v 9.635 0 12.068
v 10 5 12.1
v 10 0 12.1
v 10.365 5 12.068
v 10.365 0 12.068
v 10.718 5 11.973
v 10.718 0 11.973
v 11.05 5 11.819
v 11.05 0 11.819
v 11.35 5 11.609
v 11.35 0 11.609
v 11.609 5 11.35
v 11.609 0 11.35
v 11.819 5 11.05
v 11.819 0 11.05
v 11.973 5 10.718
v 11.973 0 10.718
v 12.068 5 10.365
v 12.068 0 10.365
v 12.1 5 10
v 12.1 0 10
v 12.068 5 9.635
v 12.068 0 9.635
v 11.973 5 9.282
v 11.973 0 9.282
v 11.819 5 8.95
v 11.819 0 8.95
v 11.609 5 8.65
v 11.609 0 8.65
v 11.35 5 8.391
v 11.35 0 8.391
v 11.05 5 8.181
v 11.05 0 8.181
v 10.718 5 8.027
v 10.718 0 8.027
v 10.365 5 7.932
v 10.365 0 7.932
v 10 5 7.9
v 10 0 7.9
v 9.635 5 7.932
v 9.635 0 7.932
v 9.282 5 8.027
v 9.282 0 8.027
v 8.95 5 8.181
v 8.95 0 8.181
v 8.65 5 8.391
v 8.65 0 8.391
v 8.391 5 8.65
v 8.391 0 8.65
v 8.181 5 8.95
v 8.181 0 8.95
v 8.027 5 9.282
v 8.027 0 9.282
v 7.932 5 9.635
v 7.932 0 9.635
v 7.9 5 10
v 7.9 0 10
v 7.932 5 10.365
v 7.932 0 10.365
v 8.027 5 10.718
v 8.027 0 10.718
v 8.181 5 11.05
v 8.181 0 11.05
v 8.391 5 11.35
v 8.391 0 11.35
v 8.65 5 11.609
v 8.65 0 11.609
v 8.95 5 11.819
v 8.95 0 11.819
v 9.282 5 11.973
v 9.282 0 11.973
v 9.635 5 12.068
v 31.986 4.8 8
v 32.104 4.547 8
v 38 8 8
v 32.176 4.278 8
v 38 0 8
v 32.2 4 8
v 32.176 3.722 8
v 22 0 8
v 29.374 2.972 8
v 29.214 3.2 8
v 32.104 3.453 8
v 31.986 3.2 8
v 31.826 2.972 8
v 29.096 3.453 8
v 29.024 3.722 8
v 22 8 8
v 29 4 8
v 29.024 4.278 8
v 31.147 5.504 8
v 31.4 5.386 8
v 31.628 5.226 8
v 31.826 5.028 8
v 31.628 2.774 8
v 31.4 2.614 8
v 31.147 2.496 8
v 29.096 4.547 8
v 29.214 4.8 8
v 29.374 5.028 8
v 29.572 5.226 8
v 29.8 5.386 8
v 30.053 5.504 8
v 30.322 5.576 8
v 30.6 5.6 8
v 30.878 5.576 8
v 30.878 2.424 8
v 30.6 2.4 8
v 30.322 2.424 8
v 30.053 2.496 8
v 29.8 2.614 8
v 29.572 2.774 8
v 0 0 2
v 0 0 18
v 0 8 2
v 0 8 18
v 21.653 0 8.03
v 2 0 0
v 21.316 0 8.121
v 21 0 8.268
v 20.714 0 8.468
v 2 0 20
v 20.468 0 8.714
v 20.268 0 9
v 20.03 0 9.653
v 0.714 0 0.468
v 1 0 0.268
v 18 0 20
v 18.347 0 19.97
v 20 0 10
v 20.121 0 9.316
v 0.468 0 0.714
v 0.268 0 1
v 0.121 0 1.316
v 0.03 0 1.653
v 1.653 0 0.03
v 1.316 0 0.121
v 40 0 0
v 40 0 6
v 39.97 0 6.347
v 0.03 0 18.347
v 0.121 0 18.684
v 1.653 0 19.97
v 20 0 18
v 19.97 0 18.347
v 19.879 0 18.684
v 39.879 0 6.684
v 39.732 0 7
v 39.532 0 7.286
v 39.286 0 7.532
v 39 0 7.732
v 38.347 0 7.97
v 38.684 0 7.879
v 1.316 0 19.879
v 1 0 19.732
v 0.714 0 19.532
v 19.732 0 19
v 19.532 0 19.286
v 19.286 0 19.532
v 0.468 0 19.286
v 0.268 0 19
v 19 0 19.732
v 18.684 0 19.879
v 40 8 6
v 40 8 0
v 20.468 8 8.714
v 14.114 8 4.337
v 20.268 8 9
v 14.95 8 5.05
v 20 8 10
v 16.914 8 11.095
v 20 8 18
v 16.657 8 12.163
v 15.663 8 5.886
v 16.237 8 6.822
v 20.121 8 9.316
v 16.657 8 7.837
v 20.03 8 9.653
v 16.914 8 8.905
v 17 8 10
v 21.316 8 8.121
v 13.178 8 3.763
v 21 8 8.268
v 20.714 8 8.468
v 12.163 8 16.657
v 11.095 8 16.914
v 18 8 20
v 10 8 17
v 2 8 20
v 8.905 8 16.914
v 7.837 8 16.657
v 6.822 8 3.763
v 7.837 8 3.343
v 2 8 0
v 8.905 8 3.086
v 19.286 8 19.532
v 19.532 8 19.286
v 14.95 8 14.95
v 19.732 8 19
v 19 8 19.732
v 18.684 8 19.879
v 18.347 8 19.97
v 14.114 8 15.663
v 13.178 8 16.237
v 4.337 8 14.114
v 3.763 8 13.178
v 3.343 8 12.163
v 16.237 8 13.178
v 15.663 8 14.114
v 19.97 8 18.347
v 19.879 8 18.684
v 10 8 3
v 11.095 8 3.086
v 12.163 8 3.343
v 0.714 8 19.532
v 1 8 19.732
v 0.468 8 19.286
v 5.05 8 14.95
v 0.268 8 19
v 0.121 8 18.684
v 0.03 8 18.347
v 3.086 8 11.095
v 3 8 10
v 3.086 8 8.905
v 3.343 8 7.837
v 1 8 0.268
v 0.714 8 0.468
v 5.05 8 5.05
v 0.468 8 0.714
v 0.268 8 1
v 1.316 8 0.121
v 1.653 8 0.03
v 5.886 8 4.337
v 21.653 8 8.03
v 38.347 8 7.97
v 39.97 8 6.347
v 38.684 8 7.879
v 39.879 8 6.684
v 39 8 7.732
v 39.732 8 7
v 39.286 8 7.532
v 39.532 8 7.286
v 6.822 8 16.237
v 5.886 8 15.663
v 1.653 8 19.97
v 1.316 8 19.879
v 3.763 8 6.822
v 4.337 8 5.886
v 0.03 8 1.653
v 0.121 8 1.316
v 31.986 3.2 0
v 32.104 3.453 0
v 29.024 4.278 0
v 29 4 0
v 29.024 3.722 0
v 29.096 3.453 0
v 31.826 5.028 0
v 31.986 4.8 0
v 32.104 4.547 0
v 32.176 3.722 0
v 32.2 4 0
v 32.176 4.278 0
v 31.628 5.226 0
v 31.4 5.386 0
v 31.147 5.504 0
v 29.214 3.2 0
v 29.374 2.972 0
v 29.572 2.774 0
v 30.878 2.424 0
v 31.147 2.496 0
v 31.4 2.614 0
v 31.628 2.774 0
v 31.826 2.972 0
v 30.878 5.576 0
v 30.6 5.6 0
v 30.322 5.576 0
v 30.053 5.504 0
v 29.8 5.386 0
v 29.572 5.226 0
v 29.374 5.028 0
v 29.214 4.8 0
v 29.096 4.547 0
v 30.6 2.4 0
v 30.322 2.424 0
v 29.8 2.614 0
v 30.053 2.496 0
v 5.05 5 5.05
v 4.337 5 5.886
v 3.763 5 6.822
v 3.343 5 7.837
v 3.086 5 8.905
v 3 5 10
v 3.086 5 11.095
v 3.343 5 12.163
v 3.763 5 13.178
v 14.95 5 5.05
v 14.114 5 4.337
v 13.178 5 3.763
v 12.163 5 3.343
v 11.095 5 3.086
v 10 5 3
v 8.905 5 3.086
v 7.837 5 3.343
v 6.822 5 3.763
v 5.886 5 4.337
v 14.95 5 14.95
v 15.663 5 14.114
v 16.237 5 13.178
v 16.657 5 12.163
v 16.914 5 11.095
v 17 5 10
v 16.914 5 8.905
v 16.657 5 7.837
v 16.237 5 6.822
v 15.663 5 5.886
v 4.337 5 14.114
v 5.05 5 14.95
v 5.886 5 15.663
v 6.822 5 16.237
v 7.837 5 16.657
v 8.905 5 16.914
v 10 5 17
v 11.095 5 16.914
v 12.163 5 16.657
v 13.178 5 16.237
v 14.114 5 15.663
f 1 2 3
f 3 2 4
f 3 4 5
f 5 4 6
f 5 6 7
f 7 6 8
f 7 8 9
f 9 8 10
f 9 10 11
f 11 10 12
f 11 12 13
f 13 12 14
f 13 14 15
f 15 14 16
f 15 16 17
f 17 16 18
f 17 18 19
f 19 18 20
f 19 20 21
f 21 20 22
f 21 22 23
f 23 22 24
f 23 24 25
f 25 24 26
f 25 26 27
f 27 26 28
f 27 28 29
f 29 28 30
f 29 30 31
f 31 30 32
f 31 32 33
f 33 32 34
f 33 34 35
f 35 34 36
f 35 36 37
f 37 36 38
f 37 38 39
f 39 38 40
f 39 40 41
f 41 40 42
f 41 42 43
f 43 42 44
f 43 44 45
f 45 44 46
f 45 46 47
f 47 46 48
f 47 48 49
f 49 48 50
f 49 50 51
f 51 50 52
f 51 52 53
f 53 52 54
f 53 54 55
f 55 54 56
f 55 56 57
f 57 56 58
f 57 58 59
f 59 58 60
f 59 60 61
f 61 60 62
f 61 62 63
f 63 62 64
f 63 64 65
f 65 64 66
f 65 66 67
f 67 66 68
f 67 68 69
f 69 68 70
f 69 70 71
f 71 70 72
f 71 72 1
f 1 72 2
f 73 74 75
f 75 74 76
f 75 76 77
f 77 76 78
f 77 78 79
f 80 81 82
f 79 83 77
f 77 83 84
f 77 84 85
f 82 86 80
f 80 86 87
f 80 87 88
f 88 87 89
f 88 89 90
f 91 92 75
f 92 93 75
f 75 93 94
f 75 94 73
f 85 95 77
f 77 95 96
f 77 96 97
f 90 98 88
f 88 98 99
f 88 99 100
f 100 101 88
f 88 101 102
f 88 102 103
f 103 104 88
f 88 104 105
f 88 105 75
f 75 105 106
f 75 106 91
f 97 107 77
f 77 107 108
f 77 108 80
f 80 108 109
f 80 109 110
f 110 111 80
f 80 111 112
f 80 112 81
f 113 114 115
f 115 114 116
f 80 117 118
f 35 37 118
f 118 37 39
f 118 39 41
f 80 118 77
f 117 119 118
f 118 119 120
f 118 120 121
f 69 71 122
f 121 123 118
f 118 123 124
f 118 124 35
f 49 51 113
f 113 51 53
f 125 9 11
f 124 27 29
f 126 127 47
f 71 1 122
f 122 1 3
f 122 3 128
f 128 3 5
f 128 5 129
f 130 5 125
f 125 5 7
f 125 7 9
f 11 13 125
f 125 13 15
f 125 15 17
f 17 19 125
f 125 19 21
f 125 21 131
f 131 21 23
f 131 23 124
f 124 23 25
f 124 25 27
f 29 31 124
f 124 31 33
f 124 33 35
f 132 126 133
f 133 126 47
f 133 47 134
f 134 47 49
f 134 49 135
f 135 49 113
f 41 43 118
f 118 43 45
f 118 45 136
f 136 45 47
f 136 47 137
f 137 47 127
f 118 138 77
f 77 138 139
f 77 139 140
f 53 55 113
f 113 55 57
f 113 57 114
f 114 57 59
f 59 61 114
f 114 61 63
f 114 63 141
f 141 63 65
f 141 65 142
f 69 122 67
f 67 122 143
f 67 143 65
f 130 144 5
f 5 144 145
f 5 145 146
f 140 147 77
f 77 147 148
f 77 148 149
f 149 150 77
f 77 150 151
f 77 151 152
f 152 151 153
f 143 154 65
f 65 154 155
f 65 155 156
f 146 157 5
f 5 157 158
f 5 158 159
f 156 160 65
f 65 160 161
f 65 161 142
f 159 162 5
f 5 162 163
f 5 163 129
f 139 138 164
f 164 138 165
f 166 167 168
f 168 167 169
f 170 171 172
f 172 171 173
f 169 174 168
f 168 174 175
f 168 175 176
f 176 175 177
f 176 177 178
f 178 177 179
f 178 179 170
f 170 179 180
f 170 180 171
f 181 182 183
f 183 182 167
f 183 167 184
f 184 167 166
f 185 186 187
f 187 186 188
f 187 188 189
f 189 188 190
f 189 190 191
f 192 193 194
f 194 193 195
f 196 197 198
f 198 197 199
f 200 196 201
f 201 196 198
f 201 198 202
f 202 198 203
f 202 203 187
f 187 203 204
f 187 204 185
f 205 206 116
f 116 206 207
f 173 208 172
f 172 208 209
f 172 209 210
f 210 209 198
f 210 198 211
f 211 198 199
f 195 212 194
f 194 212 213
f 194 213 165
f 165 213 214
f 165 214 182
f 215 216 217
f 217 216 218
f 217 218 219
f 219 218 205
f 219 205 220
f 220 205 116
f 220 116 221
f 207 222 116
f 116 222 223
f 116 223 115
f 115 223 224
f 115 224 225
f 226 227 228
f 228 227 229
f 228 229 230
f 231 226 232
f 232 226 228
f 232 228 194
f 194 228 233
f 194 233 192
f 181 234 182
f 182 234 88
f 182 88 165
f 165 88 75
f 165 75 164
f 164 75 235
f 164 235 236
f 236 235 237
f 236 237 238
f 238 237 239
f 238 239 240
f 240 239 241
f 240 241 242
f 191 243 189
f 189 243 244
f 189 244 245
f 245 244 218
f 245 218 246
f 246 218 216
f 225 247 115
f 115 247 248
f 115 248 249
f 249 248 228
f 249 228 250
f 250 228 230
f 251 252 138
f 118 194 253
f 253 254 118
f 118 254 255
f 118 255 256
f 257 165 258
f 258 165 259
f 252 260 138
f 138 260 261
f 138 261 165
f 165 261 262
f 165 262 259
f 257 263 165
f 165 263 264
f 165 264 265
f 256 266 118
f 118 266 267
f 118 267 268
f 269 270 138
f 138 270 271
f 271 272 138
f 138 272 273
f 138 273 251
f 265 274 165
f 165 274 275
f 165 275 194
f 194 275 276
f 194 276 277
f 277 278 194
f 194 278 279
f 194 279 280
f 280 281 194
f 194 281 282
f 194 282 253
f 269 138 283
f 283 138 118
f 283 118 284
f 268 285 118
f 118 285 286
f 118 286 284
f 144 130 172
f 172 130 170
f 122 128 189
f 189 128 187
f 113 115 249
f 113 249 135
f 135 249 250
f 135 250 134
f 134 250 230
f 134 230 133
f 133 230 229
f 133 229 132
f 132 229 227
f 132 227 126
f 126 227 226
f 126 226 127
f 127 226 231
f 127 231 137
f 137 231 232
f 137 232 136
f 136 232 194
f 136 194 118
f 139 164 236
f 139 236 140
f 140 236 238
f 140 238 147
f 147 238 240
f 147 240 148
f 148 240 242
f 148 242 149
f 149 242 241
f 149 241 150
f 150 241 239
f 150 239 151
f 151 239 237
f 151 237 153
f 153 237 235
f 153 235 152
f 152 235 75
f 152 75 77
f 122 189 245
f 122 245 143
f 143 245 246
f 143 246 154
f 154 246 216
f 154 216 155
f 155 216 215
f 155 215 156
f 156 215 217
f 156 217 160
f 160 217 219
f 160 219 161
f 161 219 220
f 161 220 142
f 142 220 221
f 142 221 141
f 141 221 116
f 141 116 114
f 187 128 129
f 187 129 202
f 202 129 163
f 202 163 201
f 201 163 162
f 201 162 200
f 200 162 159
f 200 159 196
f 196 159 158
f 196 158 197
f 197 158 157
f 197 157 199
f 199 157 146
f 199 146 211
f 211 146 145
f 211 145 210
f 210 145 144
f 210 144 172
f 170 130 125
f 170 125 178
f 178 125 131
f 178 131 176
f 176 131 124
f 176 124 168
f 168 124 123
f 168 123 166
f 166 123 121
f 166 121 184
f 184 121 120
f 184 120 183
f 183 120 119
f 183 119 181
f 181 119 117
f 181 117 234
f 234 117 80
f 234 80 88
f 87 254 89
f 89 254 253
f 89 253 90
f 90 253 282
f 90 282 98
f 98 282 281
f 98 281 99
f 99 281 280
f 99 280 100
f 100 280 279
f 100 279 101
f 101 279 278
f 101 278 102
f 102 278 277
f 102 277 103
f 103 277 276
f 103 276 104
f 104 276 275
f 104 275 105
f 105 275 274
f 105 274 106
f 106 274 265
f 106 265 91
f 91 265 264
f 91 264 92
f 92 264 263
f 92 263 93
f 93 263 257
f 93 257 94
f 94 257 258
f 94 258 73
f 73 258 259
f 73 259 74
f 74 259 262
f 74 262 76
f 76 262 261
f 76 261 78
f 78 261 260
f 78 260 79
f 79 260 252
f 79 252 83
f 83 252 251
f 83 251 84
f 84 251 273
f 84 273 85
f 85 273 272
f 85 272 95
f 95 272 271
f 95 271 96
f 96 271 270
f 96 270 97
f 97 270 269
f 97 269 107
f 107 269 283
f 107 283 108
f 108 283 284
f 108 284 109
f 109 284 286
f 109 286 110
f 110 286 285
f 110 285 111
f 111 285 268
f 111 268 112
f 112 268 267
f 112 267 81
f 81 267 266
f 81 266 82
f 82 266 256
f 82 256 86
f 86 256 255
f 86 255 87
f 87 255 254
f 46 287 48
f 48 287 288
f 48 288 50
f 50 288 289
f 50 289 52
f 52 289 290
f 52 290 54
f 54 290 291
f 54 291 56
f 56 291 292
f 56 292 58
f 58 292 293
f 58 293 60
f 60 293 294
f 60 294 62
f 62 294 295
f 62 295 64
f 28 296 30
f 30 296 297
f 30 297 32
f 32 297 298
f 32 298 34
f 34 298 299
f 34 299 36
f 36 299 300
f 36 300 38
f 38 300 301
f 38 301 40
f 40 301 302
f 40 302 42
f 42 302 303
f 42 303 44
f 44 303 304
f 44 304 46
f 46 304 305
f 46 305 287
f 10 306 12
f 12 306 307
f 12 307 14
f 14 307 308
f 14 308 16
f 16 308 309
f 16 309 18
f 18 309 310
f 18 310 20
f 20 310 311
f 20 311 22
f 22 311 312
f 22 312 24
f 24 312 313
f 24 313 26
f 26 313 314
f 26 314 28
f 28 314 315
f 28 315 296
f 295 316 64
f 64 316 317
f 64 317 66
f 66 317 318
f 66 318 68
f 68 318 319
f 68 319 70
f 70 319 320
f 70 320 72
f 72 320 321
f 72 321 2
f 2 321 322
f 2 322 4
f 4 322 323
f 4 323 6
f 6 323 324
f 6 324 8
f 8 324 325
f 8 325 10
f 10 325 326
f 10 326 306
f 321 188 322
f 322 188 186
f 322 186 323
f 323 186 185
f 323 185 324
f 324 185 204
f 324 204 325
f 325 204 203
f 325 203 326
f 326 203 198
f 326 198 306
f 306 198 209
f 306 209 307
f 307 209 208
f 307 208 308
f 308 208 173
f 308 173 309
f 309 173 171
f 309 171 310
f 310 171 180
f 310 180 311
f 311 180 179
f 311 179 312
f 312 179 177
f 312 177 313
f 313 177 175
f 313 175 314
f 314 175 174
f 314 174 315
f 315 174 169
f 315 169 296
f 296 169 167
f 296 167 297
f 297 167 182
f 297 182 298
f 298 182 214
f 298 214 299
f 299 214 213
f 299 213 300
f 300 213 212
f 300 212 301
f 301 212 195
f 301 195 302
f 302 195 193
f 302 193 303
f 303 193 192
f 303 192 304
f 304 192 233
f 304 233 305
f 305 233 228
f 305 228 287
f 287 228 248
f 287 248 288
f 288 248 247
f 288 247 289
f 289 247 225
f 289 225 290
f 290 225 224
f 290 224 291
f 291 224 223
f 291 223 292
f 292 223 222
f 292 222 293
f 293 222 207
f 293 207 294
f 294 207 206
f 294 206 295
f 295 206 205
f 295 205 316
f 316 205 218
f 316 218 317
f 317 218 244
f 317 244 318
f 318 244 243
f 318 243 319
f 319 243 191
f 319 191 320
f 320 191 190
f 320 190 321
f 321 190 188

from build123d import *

# Parameters (mm, degrees)
ESQUISSE1_W             = 40
ESQUISSE1_H             = 8
BOSS_EXTRU_1_DEPTH      = 8
ESQUISSE2_W             = 20
ESQUISSE2_H             = 8
BOSS_EXTRU_2_DEPTH      = 12
CONG_1_R                = 2
ESQUISSE3_R             = 2.1
ENL_V_MAT_EXTRU_1_DEPTH = 9
ESQUISSE5_R             = 1.6
ENL_V_MAT_EXTRU_2_DEPTH = 21
ESQUISSE6_R             = 7
ENL_V_MAT_EXTRU_3_DEPTH = 3


with BuildPart() as part:
    # Esquisse1 → Boss.-Extru.1 (new body)
    with BuildSketch(Plane.XY):
        with Locations((20, 4)):
            Rectangle(ESQUISSE1_W, ESQUISSE1_H)
    extrude(amount=BOSS_EXTRU_1_DEPTH)

    # Esquisse2 → Boss.-Extru.2 (add)
    with BuildSketch(Plane.XY.offset(8)):
        with Locations((10, 4)):
            Rectangle(ESQUISSE2_W, ESQUISSE2_H)
    extrude(amount=BOSS_EXTRU_2_DEPTH)

    # Congé1
    cong_1_edges = [part.edges().sort_by_distance(p)[0] for p in [
        (0, 4, 0),
        (40, 4, 8),
        (0, 4, 20),
        (20, 4, 20),
        (20, 4, 8),
    ]]
    fillet(cong_1_edges, radius=CONG_1_R)

    # Esquisse3 → Enlèv. mat.-Extru.1 (cut, through all)
    with BuildSketch(Plane(origin=(0, 8, 0), x_dir=(1, 0, 0), z_dir=(0, 1, 0))):
        with Locations((10, -10)):
            Circle(ESQUISSE3_R)
    extrude(amount=-ENL_V_MAT_EXTRU_1_DEPTH, mode=Mode.SUBTRACT)

    # Esquisse5 → Enlèv. mat.-Extru.2 (cut, through all)
    with BuildSketch(Plane(origin=(0, 0, 0), x_dir=(-1, 0, 0), z_dir=(0, 0, -1))):
        with Locations((-30.6, 4)):
            Circle(ESQUISSE5_R)
    extrude(amount=-ENL_V_MAT_EXTRU_2_DEPTH, mode=Mode.SUBTRACT)

    # Esquisse6 → Enlèv. mat.-Extru.3 (cut)
    with BuildSketch(Plane(origin=(0, 8, 0), x_dir=(1, 0, 0), z_dir=(0, 1, 0))):
        with Locations((10, -10)):
            Circle(ESQUISSE6_R)
    extrude(amount=-ENL_V_MAT_EXTRU_3_DEPTH, mode=Mode.SUBTRACT)


solid = part.part
